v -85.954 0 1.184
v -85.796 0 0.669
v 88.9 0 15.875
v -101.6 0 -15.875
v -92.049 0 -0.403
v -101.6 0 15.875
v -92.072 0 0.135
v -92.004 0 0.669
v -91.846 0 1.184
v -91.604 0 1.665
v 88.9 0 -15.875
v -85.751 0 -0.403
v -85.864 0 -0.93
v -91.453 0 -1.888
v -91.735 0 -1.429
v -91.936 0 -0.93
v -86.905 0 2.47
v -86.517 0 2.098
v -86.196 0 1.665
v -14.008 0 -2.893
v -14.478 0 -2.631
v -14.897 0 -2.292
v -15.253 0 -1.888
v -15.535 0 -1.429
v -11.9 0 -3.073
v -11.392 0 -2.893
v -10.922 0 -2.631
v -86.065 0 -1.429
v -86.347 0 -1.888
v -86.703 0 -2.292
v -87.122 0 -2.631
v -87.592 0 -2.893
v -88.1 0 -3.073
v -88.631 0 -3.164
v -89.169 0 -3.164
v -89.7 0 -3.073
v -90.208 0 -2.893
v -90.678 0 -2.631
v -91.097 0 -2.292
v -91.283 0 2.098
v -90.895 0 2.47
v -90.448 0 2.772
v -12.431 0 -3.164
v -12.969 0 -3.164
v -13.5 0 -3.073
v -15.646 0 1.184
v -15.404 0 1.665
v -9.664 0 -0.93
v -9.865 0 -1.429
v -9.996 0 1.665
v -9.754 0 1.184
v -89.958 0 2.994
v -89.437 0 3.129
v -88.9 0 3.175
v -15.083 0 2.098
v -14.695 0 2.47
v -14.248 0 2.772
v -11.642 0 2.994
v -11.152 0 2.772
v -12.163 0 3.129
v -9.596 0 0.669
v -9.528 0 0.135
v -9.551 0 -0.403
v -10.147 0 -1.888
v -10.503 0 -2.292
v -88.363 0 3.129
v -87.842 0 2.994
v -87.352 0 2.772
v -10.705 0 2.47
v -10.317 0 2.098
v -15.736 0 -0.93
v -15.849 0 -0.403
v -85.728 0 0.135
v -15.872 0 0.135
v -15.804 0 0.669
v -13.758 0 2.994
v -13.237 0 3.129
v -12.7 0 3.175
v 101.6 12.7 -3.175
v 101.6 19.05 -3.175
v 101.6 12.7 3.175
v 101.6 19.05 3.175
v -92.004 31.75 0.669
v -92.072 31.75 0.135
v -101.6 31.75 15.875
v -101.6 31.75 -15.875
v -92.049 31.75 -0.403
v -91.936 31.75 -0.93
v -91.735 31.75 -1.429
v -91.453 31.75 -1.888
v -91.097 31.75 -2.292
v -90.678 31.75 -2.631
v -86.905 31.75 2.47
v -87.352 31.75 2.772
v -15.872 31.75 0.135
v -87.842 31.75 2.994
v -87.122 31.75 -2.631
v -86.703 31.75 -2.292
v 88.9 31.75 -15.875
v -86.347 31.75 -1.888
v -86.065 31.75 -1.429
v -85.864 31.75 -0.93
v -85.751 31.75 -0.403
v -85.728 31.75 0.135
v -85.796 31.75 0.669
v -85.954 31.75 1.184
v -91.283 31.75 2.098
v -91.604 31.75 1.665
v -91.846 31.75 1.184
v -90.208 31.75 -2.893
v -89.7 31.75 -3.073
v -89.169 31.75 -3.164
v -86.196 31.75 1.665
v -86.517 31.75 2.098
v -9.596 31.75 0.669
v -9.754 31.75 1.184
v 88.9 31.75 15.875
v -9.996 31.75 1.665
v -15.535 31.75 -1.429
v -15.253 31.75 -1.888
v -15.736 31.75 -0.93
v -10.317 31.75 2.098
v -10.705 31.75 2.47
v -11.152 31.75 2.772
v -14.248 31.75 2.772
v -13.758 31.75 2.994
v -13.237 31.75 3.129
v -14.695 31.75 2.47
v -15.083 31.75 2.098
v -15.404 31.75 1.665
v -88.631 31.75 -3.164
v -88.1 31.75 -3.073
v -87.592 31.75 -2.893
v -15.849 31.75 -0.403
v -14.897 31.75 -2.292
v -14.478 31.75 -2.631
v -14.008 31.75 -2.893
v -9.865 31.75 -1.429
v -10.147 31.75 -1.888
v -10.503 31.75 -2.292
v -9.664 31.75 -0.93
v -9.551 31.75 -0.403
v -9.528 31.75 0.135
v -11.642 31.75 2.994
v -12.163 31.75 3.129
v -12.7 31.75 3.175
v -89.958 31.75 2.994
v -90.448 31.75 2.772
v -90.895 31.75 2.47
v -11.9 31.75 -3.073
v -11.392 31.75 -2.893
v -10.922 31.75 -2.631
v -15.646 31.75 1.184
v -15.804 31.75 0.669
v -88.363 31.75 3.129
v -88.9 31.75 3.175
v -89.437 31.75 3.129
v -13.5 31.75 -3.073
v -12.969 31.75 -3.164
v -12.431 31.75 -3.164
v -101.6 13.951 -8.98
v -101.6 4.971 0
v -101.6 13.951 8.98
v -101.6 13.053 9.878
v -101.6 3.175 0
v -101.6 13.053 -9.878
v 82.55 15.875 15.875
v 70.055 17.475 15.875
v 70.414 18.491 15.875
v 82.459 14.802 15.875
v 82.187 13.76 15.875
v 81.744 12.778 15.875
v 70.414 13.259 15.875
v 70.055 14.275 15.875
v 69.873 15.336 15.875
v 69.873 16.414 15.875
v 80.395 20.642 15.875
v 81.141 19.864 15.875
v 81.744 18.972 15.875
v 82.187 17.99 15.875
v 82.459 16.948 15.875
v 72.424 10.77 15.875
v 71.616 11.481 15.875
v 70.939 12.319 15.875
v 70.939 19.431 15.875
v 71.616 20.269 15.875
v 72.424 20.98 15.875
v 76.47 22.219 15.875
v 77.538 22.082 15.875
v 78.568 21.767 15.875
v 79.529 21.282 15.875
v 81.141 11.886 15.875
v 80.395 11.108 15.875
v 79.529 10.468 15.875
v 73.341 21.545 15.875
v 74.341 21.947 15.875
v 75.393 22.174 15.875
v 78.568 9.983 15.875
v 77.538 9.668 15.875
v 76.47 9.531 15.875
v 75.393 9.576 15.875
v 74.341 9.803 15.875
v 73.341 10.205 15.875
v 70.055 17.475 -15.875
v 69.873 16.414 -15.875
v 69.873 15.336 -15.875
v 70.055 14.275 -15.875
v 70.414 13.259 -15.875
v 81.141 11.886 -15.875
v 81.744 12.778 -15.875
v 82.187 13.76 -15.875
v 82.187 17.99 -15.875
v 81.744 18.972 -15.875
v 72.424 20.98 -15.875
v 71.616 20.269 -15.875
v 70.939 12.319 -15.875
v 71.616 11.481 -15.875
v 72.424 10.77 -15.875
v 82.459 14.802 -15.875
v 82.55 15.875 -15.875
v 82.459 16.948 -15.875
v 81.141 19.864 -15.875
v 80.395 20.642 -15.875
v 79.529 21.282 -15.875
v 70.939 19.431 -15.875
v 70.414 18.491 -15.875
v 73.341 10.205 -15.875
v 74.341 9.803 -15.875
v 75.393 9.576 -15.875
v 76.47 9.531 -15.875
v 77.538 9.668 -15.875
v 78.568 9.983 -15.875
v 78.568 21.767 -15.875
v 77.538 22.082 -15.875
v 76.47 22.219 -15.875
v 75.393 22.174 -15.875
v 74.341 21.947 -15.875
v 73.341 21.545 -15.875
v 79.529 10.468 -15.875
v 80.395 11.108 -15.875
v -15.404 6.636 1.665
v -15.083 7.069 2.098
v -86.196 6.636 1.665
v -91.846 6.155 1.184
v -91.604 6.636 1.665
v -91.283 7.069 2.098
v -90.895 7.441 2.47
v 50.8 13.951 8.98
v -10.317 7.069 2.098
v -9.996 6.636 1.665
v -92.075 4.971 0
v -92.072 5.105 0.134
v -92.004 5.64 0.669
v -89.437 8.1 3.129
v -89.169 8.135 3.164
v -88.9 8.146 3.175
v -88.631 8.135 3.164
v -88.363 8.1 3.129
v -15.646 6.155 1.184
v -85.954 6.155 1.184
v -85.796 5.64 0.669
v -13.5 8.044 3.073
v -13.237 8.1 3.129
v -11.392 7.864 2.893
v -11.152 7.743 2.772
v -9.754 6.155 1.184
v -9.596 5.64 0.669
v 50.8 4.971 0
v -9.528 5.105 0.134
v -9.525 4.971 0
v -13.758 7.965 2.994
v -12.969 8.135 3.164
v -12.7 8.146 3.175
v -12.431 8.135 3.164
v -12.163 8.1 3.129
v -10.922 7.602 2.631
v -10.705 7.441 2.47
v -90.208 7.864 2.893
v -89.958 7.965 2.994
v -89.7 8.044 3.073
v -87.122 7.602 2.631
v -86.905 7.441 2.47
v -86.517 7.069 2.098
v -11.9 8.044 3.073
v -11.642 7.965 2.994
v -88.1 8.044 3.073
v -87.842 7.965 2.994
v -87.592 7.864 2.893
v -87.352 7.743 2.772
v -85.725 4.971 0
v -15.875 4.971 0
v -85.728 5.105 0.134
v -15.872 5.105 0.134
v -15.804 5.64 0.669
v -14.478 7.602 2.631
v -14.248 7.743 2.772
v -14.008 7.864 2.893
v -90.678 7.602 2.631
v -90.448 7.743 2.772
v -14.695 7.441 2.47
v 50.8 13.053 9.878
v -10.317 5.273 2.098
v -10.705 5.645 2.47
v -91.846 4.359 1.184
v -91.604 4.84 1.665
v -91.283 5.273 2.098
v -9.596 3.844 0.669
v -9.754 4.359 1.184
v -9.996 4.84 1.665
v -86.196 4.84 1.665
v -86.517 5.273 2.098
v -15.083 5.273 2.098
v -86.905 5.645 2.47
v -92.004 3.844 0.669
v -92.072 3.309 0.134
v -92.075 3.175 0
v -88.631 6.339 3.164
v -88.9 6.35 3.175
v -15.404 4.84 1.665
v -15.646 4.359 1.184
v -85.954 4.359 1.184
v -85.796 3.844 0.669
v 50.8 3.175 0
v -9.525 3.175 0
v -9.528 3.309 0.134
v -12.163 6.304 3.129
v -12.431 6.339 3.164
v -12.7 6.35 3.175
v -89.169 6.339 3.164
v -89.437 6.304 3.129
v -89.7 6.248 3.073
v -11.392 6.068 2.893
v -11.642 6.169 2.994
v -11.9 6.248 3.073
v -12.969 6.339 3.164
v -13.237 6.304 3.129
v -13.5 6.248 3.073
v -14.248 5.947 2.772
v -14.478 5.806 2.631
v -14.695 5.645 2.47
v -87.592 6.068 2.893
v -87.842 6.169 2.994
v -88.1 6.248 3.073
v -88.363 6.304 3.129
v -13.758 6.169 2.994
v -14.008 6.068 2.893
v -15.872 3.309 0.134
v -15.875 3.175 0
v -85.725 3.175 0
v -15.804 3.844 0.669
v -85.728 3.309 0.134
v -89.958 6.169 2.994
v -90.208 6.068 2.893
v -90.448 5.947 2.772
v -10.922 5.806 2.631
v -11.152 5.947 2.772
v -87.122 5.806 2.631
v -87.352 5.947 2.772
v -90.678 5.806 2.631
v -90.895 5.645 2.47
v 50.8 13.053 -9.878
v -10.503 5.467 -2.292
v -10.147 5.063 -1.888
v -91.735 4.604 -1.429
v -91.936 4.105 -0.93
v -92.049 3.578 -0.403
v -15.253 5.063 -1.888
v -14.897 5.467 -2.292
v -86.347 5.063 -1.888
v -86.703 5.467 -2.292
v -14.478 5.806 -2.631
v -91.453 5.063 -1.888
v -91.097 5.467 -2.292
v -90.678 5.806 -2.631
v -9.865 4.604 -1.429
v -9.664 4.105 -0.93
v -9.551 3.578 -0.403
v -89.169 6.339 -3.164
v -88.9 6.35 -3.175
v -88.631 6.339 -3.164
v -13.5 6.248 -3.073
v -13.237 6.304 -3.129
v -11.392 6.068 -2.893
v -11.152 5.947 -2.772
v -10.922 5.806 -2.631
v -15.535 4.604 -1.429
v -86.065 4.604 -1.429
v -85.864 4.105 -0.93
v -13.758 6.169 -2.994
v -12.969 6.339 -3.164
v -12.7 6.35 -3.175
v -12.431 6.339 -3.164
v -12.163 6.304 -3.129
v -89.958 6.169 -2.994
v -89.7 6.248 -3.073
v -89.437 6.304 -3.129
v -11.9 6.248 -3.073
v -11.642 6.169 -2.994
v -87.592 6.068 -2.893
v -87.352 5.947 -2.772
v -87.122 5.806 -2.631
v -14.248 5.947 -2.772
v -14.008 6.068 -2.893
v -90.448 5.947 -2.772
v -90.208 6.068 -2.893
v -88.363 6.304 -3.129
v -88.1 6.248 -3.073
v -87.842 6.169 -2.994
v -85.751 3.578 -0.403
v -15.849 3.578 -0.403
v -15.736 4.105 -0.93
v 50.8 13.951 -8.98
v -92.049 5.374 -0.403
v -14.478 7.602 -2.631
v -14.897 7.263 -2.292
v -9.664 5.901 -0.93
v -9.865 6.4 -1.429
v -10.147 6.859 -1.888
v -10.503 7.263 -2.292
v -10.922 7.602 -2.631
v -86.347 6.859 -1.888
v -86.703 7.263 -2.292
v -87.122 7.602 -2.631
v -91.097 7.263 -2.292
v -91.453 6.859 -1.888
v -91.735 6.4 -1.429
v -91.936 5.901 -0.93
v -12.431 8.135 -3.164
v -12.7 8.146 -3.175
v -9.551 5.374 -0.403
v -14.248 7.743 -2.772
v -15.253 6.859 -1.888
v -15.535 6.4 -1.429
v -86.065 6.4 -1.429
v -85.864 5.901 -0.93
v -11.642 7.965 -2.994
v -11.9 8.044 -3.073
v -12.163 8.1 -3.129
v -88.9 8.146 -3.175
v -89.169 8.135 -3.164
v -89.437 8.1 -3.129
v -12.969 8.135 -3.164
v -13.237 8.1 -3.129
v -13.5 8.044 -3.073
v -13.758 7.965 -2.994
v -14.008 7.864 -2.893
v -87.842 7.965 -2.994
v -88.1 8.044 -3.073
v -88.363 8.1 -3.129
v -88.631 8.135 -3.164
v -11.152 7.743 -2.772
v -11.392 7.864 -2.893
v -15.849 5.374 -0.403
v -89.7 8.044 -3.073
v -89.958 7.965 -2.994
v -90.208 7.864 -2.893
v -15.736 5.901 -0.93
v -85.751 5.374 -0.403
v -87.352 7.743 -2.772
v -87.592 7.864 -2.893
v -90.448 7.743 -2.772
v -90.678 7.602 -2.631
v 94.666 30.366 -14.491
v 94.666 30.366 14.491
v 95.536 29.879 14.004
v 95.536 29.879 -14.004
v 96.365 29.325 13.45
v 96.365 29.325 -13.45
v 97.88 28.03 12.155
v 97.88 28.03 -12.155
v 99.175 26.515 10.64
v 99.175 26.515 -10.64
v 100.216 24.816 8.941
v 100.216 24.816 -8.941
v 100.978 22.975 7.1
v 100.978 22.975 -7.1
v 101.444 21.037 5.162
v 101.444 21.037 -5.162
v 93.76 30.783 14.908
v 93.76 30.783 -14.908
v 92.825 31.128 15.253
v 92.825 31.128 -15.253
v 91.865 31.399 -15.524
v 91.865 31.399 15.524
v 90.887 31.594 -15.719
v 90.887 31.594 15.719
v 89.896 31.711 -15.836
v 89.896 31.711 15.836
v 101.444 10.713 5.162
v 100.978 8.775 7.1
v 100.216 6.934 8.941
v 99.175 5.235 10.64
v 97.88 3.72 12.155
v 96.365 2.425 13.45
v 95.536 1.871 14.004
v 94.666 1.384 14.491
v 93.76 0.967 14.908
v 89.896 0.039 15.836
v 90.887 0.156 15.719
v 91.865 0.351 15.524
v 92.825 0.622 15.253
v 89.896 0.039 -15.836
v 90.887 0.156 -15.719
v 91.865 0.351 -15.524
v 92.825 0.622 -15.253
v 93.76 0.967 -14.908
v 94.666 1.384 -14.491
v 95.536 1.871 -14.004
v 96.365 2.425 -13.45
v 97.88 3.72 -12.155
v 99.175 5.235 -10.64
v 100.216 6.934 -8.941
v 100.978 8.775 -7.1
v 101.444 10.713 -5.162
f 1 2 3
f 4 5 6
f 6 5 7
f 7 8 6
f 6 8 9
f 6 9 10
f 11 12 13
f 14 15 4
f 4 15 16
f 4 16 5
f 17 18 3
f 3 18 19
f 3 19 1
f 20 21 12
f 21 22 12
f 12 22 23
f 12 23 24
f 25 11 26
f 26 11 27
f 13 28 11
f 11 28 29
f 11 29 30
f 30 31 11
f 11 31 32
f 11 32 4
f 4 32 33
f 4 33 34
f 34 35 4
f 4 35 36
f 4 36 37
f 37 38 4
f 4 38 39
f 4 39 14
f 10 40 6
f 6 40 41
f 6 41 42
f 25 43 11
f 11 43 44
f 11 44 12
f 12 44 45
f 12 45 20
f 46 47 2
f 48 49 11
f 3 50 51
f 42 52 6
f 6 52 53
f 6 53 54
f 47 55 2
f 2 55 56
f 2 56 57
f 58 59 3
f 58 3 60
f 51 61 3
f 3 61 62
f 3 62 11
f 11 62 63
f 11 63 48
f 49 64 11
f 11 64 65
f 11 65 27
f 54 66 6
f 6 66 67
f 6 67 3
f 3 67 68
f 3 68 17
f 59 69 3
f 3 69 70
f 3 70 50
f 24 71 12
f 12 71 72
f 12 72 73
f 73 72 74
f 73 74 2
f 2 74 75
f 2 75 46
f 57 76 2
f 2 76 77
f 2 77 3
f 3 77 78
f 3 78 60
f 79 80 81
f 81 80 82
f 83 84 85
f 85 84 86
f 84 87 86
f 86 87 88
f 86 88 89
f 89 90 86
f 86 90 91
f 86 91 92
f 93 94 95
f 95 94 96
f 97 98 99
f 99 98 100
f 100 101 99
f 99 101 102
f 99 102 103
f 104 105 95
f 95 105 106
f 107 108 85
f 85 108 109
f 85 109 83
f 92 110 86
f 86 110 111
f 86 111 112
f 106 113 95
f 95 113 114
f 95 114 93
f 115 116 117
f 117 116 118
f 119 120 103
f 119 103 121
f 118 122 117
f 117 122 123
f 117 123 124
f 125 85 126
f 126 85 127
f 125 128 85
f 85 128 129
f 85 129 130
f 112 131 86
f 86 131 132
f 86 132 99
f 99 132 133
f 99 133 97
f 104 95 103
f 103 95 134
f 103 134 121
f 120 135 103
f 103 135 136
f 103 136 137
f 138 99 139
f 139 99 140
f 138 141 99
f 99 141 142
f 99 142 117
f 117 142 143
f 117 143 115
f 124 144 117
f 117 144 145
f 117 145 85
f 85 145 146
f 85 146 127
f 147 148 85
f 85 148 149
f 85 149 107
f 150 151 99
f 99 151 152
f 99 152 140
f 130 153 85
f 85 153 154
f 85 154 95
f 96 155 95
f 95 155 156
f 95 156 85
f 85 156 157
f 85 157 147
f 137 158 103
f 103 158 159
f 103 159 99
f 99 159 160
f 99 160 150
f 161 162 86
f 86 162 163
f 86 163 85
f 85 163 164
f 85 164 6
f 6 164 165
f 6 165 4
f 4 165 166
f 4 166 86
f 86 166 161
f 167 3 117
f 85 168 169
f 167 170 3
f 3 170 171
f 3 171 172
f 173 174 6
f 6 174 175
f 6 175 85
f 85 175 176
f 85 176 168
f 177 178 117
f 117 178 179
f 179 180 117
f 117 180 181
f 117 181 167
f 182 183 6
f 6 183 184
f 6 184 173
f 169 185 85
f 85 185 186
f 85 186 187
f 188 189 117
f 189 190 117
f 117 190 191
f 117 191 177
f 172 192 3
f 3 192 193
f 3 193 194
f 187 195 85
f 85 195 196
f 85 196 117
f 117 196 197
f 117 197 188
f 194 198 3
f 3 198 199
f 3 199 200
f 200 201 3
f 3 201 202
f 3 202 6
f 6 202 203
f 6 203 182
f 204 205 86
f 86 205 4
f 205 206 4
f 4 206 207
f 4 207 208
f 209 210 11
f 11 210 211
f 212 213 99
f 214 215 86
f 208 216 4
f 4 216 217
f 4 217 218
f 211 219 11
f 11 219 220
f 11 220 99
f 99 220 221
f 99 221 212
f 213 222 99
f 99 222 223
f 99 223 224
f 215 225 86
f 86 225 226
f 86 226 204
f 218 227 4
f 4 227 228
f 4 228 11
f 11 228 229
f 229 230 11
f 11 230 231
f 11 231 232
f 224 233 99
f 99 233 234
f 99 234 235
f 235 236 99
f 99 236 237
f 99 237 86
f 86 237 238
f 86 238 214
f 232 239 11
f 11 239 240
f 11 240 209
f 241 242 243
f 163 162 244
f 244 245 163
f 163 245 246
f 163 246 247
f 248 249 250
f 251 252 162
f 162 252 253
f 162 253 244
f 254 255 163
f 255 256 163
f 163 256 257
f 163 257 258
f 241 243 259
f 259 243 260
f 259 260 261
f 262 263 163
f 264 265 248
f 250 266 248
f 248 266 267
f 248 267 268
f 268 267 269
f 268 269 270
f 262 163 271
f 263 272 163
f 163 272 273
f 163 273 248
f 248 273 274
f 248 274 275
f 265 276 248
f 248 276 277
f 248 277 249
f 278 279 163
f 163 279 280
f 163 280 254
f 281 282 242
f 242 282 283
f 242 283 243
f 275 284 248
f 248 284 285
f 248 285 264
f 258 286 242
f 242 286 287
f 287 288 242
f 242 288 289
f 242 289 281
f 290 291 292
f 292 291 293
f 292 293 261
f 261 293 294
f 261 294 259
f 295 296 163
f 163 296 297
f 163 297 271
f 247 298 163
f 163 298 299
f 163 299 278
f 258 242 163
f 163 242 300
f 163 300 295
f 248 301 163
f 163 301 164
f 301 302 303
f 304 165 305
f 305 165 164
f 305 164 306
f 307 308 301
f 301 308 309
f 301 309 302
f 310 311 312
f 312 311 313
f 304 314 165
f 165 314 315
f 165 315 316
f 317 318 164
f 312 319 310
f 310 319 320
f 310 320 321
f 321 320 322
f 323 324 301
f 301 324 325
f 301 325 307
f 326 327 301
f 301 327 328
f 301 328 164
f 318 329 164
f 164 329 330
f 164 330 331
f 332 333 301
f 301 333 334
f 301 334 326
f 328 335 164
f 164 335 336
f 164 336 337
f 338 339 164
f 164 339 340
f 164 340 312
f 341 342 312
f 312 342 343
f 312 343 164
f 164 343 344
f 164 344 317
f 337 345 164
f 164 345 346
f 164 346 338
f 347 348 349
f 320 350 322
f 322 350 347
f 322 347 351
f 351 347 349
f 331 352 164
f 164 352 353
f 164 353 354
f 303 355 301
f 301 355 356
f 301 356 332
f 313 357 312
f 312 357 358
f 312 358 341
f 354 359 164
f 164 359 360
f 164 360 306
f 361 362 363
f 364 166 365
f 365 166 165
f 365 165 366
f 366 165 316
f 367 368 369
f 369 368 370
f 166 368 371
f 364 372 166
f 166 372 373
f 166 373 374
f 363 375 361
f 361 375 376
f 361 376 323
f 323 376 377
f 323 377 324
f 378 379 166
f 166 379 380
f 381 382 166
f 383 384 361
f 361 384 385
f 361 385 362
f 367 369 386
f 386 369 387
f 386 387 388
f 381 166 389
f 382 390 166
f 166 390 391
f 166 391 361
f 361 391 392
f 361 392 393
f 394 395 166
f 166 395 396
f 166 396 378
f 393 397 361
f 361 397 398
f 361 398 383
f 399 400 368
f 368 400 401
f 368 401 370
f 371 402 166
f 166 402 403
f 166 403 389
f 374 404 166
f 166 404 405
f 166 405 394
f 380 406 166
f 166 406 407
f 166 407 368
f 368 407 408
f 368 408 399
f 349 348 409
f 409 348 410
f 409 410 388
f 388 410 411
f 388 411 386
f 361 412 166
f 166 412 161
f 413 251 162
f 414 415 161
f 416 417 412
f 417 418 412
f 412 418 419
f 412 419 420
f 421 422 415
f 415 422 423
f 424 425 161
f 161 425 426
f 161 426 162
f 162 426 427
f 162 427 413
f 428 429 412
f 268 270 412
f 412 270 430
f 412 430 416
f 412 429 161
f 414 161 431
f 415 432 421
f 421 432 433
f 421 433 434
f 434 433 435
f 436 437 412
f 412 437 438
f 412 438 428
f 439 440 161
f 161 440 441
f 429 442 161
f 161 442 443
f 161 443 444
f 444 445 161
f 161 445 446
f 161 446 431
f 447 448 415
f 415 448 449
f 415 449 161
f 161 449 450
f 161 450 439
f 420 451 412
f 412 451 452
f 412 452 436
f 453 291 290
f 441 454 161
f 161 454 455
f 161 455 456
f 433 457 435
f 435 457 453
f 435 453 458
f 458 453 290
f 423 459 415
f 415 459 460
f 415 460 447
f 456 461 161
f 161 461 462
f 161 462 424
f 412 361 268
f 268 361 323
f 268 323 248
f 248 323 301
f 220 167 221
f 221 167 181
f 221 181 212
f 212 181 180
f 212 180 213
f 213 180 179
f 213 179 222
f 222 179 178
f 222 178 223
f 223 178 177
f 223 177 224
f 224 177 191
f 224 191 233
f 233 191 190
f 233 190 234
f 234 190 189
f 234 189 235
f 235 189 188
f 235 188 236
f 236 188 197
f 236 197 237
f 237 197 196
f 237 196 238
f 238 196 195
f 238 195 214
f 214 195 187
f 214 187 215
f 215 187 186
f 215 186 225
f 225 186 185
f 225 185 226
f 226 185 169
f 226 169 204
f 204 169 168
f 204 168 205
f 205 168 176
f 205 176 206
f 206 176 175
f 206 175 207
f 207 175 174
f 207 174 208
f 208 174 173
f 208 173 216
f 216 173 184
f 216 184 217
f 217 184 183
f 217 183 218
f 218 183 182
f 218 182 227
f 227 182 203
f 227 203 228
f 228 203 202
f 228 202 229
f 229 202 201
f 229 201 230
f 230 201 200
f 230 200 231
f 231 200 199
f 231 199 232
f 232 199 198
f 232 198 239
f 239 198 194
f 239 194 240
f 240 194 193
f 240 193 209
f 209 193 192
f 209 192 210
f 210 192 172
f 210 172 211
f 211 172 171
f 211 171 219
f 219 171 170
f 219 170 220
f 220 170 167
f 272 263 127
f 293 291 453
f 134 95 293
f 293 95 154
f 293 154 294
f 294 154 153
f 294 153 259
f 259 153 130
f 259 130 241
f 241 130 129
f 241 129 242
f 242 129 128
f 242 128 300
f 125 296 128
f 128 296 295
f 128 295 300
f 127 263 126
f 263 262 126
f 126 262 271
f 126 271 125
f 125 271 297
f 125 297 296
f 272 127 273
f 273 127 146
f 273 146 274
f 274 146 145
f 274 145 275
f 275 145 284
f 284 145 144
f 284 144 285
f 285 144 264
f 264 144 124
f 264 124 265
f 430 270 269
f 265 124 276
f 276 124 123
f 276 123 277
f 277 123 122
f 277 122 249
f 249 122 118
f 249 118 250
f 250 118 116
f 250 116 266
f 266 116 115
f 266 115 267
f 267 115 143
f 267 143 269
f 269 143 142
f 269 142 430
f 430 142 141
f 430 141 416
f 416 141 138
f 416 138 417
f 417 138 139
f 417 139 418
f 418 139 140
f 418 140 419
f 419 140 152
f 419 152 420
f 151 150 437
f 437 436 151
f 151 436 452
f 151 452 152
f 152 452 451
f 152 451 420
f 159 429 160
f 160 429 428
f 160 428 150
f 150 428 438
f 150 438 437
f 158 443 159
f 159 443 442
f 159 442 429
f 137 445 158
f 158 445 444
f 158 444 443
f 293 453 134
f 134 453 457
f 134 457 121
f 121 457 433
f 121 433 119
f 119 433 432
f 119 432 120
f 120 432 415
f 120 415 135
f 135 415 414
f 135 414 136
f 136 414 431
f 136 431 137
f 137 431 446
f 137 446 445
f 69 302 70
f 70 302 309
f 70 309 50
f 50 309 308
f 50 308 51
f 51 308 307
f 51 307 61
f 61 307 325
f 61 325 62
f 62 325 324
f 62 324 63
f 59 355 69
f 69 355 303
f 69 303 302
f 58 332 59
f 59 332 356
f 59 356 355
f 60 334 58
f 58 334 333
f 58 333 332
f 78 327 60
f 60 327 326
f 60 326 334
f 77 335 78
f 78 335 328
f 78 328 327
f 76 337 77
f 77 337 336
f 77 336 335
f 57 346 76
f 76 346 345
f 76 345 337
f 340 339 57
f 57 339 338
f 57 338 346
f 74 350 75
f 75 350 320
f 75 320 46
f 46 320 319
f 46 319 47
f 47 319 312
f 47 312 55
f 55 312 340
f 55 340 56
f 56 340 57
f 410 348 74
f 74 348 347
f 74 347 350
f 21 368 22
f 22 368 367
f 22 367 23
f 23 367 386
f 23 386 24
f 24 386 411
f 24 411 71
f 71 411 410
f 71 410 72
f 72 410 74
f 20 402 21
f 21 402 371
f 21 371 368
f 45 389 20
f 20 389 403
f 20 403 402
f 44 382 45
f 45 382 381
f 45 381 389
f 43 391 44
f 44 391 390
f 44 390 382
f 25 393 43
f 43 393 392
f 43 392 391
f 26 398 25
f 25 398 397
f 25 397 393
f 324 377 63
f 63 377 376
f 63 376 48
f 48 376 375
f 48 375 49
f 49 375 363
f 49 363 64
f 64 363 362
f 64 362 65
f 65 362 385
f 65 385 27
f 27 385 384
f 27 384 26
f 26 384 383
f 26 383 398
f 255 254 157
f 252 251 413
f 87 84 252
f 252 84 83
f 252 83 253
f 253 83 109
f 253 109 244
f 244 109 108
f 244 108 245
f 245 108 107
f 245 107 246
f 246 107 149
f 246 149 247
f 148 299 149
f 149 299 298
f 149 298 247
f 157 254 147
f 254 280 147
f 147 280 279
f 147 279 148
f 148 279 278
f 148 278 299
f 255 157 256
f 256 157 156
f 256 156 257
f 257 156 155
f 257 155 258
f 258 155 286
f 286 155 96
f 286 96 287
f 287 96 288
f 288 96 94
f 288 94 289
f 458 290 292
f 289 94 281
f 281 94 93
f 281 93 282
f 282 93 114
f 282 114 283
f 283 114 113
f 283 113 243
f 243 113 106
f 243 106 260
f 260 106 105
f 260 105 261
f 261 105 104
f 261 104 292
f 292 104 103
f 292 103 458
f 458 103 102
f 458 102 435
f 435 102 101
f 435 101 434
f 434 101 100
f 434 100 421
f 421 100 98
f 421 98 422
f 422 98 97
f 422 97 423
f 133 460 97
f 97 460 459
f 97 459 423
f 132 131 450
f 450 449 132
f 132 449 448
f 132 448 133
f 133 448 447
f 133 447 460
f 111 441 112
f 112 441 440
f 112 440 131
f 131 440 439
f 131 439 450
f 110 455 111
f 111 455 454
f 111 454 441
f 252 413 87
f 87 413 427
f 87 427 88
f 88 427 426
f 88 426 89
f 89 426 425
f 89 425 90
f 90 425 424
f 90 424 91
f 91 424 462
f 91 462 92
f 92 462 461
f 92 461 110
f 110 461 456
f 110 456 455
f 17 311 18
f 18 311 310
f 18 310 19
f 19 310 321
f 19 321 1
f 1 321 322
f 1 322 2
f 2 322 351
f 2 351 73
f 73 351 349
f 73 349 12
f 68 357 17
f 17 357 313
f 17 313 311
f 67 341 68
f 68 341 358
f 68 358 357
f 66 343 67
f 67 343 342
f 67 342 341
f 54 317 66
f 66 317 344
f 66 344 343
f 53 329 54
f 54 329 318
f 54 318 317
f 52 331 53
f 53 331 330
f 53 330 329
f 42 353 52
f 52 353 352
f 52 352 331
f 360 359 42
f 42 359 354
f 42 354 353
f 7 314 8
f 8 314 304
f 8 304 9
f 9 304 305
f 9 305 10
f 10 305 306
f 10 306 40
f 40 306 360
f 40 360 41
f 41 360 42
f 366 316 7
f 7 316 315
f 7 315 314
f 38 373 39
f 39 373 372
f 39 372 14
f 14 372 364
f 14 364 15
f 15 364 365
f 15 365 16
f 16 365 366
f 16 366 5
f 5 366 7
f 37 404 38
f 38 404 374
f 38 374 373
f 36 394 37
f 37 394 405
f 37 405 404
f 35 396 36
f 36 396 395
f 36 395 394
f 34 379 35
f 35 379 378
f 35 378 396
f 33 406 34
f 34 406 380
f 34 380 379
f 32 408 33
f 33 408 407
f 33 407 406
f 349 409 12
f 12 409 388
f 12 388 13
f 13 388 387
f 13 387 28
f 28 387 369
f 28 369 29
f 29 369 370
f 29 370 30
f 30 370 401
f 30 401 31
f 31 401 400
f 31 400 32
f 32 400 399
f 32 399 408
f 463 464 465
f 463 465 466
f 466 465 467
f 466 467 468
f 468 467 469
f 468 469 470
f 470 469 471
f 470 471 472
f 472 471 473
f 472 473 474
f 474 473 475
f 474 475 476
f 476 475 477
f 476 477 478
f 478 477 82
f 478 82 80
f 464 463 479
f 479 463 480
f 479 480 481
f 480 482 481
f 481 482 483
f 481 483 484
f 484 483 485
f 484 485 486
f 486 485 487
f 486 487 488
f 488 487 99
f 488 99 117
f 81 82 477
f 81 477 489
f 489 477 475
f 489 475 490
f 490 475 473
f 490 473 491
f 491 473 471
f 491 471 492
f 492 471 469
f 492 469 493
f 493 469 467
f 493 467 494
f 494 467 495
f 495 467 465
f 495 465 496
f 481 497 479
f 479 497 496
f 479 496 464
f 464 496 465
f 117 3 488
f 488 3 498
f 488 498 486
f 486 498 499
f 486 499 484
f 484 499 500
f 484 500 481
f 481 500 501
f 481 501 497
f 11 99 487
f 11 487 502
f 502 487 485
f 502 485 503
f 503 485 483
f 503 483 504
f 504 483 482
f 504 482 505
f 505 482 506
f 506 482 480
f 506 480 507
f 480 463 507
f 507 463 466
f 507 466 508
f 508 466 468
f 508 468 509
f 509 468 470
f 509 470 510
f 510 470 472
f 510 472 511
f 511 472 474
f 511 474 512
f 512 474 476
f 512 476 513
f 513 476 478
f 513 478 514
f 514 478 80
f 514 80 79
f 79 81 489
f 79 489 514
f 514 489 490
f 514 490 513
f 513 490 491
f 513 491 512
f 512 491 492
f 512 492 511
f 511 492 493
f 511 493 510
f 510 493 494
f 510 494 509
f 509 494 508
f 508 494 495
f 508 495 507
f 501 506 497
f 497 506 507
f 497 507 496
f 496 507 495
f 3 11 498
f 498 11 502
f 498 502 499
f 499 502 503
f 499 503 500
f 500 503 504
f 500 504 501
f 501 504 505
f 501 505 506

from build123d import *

# Parameters (mm, degrees)
BOSS_EXTRUDE1_DEPTH         = 15.875
CUT_EXTRUDE1_DEPTH          = 152.4
F_1_2_0_5_DIAMETER_HOLE1_D  = 12.7
F_1_4_0_25_DIAMETER_HOLE1_D = 6.35
FILLET1_R                   = 12.7


with BuildPart() as part:
    # Sketch1 → Boss-Extrude1 (new, symmetric)
    with BuildSketch(Plane.XY):
        Polygon((0, 0), (101.6, 0), (101.6, 31.75), (-101.6, 31.75), (-101.6, 0), align=None)
    extrude(amount=BOSS_EXTRUDE1_DEPTH, both=True)

    # Sketch2 → Cut-Extrude1 (cut)
    with BuildSketch(Plane.ZY.offset(101.6)):
        Polygon((0, 4.971051224), (-8.980256121, 13.951307345), (-9.878281733, 13.053281733), (0, 3.175), (9.878281733, 13.053281733), (8.980256121, 13.951307345), align=None)
    extrude(amount=-CUT_EXTRUDE1_DEPTH, mode=Mode.SUBTRACT)

    # 1/2 (0.5) Diameter Hole1 (through all)
    with Locations(Plane.XY.offset(15.875)):
        with Locations((76.2, 15.875)):
            Hole(F_1_2_0_5_DIAMETER_HOLE1_D / 2)

    # 1/4 (0.25) Diameter Hole1 (through all)
    with Locations(Plane(origin=(0, 31.75, 0), x_dir=(1, 0, 0), z_dir=(0, 1, 0))):
        with Locations((-88.9, 0), (-12.7, 0)):
            Hole(F_1_4_0_25_DIAMETER_HOLE1_D / 2)

    # Fillet1
    fillet1_edges = [part.edges().sort_by_distance(p)[0] for p in [
        (101.6, 15.875, 15.875),
        (101.6, 15.875, -15.875),
        (101.6, 31.75, 0),
        (101.6, 0, 0),
    ]]
    fillet(fillet1_edges, radius=FILLET1_R)


solid = part.part
